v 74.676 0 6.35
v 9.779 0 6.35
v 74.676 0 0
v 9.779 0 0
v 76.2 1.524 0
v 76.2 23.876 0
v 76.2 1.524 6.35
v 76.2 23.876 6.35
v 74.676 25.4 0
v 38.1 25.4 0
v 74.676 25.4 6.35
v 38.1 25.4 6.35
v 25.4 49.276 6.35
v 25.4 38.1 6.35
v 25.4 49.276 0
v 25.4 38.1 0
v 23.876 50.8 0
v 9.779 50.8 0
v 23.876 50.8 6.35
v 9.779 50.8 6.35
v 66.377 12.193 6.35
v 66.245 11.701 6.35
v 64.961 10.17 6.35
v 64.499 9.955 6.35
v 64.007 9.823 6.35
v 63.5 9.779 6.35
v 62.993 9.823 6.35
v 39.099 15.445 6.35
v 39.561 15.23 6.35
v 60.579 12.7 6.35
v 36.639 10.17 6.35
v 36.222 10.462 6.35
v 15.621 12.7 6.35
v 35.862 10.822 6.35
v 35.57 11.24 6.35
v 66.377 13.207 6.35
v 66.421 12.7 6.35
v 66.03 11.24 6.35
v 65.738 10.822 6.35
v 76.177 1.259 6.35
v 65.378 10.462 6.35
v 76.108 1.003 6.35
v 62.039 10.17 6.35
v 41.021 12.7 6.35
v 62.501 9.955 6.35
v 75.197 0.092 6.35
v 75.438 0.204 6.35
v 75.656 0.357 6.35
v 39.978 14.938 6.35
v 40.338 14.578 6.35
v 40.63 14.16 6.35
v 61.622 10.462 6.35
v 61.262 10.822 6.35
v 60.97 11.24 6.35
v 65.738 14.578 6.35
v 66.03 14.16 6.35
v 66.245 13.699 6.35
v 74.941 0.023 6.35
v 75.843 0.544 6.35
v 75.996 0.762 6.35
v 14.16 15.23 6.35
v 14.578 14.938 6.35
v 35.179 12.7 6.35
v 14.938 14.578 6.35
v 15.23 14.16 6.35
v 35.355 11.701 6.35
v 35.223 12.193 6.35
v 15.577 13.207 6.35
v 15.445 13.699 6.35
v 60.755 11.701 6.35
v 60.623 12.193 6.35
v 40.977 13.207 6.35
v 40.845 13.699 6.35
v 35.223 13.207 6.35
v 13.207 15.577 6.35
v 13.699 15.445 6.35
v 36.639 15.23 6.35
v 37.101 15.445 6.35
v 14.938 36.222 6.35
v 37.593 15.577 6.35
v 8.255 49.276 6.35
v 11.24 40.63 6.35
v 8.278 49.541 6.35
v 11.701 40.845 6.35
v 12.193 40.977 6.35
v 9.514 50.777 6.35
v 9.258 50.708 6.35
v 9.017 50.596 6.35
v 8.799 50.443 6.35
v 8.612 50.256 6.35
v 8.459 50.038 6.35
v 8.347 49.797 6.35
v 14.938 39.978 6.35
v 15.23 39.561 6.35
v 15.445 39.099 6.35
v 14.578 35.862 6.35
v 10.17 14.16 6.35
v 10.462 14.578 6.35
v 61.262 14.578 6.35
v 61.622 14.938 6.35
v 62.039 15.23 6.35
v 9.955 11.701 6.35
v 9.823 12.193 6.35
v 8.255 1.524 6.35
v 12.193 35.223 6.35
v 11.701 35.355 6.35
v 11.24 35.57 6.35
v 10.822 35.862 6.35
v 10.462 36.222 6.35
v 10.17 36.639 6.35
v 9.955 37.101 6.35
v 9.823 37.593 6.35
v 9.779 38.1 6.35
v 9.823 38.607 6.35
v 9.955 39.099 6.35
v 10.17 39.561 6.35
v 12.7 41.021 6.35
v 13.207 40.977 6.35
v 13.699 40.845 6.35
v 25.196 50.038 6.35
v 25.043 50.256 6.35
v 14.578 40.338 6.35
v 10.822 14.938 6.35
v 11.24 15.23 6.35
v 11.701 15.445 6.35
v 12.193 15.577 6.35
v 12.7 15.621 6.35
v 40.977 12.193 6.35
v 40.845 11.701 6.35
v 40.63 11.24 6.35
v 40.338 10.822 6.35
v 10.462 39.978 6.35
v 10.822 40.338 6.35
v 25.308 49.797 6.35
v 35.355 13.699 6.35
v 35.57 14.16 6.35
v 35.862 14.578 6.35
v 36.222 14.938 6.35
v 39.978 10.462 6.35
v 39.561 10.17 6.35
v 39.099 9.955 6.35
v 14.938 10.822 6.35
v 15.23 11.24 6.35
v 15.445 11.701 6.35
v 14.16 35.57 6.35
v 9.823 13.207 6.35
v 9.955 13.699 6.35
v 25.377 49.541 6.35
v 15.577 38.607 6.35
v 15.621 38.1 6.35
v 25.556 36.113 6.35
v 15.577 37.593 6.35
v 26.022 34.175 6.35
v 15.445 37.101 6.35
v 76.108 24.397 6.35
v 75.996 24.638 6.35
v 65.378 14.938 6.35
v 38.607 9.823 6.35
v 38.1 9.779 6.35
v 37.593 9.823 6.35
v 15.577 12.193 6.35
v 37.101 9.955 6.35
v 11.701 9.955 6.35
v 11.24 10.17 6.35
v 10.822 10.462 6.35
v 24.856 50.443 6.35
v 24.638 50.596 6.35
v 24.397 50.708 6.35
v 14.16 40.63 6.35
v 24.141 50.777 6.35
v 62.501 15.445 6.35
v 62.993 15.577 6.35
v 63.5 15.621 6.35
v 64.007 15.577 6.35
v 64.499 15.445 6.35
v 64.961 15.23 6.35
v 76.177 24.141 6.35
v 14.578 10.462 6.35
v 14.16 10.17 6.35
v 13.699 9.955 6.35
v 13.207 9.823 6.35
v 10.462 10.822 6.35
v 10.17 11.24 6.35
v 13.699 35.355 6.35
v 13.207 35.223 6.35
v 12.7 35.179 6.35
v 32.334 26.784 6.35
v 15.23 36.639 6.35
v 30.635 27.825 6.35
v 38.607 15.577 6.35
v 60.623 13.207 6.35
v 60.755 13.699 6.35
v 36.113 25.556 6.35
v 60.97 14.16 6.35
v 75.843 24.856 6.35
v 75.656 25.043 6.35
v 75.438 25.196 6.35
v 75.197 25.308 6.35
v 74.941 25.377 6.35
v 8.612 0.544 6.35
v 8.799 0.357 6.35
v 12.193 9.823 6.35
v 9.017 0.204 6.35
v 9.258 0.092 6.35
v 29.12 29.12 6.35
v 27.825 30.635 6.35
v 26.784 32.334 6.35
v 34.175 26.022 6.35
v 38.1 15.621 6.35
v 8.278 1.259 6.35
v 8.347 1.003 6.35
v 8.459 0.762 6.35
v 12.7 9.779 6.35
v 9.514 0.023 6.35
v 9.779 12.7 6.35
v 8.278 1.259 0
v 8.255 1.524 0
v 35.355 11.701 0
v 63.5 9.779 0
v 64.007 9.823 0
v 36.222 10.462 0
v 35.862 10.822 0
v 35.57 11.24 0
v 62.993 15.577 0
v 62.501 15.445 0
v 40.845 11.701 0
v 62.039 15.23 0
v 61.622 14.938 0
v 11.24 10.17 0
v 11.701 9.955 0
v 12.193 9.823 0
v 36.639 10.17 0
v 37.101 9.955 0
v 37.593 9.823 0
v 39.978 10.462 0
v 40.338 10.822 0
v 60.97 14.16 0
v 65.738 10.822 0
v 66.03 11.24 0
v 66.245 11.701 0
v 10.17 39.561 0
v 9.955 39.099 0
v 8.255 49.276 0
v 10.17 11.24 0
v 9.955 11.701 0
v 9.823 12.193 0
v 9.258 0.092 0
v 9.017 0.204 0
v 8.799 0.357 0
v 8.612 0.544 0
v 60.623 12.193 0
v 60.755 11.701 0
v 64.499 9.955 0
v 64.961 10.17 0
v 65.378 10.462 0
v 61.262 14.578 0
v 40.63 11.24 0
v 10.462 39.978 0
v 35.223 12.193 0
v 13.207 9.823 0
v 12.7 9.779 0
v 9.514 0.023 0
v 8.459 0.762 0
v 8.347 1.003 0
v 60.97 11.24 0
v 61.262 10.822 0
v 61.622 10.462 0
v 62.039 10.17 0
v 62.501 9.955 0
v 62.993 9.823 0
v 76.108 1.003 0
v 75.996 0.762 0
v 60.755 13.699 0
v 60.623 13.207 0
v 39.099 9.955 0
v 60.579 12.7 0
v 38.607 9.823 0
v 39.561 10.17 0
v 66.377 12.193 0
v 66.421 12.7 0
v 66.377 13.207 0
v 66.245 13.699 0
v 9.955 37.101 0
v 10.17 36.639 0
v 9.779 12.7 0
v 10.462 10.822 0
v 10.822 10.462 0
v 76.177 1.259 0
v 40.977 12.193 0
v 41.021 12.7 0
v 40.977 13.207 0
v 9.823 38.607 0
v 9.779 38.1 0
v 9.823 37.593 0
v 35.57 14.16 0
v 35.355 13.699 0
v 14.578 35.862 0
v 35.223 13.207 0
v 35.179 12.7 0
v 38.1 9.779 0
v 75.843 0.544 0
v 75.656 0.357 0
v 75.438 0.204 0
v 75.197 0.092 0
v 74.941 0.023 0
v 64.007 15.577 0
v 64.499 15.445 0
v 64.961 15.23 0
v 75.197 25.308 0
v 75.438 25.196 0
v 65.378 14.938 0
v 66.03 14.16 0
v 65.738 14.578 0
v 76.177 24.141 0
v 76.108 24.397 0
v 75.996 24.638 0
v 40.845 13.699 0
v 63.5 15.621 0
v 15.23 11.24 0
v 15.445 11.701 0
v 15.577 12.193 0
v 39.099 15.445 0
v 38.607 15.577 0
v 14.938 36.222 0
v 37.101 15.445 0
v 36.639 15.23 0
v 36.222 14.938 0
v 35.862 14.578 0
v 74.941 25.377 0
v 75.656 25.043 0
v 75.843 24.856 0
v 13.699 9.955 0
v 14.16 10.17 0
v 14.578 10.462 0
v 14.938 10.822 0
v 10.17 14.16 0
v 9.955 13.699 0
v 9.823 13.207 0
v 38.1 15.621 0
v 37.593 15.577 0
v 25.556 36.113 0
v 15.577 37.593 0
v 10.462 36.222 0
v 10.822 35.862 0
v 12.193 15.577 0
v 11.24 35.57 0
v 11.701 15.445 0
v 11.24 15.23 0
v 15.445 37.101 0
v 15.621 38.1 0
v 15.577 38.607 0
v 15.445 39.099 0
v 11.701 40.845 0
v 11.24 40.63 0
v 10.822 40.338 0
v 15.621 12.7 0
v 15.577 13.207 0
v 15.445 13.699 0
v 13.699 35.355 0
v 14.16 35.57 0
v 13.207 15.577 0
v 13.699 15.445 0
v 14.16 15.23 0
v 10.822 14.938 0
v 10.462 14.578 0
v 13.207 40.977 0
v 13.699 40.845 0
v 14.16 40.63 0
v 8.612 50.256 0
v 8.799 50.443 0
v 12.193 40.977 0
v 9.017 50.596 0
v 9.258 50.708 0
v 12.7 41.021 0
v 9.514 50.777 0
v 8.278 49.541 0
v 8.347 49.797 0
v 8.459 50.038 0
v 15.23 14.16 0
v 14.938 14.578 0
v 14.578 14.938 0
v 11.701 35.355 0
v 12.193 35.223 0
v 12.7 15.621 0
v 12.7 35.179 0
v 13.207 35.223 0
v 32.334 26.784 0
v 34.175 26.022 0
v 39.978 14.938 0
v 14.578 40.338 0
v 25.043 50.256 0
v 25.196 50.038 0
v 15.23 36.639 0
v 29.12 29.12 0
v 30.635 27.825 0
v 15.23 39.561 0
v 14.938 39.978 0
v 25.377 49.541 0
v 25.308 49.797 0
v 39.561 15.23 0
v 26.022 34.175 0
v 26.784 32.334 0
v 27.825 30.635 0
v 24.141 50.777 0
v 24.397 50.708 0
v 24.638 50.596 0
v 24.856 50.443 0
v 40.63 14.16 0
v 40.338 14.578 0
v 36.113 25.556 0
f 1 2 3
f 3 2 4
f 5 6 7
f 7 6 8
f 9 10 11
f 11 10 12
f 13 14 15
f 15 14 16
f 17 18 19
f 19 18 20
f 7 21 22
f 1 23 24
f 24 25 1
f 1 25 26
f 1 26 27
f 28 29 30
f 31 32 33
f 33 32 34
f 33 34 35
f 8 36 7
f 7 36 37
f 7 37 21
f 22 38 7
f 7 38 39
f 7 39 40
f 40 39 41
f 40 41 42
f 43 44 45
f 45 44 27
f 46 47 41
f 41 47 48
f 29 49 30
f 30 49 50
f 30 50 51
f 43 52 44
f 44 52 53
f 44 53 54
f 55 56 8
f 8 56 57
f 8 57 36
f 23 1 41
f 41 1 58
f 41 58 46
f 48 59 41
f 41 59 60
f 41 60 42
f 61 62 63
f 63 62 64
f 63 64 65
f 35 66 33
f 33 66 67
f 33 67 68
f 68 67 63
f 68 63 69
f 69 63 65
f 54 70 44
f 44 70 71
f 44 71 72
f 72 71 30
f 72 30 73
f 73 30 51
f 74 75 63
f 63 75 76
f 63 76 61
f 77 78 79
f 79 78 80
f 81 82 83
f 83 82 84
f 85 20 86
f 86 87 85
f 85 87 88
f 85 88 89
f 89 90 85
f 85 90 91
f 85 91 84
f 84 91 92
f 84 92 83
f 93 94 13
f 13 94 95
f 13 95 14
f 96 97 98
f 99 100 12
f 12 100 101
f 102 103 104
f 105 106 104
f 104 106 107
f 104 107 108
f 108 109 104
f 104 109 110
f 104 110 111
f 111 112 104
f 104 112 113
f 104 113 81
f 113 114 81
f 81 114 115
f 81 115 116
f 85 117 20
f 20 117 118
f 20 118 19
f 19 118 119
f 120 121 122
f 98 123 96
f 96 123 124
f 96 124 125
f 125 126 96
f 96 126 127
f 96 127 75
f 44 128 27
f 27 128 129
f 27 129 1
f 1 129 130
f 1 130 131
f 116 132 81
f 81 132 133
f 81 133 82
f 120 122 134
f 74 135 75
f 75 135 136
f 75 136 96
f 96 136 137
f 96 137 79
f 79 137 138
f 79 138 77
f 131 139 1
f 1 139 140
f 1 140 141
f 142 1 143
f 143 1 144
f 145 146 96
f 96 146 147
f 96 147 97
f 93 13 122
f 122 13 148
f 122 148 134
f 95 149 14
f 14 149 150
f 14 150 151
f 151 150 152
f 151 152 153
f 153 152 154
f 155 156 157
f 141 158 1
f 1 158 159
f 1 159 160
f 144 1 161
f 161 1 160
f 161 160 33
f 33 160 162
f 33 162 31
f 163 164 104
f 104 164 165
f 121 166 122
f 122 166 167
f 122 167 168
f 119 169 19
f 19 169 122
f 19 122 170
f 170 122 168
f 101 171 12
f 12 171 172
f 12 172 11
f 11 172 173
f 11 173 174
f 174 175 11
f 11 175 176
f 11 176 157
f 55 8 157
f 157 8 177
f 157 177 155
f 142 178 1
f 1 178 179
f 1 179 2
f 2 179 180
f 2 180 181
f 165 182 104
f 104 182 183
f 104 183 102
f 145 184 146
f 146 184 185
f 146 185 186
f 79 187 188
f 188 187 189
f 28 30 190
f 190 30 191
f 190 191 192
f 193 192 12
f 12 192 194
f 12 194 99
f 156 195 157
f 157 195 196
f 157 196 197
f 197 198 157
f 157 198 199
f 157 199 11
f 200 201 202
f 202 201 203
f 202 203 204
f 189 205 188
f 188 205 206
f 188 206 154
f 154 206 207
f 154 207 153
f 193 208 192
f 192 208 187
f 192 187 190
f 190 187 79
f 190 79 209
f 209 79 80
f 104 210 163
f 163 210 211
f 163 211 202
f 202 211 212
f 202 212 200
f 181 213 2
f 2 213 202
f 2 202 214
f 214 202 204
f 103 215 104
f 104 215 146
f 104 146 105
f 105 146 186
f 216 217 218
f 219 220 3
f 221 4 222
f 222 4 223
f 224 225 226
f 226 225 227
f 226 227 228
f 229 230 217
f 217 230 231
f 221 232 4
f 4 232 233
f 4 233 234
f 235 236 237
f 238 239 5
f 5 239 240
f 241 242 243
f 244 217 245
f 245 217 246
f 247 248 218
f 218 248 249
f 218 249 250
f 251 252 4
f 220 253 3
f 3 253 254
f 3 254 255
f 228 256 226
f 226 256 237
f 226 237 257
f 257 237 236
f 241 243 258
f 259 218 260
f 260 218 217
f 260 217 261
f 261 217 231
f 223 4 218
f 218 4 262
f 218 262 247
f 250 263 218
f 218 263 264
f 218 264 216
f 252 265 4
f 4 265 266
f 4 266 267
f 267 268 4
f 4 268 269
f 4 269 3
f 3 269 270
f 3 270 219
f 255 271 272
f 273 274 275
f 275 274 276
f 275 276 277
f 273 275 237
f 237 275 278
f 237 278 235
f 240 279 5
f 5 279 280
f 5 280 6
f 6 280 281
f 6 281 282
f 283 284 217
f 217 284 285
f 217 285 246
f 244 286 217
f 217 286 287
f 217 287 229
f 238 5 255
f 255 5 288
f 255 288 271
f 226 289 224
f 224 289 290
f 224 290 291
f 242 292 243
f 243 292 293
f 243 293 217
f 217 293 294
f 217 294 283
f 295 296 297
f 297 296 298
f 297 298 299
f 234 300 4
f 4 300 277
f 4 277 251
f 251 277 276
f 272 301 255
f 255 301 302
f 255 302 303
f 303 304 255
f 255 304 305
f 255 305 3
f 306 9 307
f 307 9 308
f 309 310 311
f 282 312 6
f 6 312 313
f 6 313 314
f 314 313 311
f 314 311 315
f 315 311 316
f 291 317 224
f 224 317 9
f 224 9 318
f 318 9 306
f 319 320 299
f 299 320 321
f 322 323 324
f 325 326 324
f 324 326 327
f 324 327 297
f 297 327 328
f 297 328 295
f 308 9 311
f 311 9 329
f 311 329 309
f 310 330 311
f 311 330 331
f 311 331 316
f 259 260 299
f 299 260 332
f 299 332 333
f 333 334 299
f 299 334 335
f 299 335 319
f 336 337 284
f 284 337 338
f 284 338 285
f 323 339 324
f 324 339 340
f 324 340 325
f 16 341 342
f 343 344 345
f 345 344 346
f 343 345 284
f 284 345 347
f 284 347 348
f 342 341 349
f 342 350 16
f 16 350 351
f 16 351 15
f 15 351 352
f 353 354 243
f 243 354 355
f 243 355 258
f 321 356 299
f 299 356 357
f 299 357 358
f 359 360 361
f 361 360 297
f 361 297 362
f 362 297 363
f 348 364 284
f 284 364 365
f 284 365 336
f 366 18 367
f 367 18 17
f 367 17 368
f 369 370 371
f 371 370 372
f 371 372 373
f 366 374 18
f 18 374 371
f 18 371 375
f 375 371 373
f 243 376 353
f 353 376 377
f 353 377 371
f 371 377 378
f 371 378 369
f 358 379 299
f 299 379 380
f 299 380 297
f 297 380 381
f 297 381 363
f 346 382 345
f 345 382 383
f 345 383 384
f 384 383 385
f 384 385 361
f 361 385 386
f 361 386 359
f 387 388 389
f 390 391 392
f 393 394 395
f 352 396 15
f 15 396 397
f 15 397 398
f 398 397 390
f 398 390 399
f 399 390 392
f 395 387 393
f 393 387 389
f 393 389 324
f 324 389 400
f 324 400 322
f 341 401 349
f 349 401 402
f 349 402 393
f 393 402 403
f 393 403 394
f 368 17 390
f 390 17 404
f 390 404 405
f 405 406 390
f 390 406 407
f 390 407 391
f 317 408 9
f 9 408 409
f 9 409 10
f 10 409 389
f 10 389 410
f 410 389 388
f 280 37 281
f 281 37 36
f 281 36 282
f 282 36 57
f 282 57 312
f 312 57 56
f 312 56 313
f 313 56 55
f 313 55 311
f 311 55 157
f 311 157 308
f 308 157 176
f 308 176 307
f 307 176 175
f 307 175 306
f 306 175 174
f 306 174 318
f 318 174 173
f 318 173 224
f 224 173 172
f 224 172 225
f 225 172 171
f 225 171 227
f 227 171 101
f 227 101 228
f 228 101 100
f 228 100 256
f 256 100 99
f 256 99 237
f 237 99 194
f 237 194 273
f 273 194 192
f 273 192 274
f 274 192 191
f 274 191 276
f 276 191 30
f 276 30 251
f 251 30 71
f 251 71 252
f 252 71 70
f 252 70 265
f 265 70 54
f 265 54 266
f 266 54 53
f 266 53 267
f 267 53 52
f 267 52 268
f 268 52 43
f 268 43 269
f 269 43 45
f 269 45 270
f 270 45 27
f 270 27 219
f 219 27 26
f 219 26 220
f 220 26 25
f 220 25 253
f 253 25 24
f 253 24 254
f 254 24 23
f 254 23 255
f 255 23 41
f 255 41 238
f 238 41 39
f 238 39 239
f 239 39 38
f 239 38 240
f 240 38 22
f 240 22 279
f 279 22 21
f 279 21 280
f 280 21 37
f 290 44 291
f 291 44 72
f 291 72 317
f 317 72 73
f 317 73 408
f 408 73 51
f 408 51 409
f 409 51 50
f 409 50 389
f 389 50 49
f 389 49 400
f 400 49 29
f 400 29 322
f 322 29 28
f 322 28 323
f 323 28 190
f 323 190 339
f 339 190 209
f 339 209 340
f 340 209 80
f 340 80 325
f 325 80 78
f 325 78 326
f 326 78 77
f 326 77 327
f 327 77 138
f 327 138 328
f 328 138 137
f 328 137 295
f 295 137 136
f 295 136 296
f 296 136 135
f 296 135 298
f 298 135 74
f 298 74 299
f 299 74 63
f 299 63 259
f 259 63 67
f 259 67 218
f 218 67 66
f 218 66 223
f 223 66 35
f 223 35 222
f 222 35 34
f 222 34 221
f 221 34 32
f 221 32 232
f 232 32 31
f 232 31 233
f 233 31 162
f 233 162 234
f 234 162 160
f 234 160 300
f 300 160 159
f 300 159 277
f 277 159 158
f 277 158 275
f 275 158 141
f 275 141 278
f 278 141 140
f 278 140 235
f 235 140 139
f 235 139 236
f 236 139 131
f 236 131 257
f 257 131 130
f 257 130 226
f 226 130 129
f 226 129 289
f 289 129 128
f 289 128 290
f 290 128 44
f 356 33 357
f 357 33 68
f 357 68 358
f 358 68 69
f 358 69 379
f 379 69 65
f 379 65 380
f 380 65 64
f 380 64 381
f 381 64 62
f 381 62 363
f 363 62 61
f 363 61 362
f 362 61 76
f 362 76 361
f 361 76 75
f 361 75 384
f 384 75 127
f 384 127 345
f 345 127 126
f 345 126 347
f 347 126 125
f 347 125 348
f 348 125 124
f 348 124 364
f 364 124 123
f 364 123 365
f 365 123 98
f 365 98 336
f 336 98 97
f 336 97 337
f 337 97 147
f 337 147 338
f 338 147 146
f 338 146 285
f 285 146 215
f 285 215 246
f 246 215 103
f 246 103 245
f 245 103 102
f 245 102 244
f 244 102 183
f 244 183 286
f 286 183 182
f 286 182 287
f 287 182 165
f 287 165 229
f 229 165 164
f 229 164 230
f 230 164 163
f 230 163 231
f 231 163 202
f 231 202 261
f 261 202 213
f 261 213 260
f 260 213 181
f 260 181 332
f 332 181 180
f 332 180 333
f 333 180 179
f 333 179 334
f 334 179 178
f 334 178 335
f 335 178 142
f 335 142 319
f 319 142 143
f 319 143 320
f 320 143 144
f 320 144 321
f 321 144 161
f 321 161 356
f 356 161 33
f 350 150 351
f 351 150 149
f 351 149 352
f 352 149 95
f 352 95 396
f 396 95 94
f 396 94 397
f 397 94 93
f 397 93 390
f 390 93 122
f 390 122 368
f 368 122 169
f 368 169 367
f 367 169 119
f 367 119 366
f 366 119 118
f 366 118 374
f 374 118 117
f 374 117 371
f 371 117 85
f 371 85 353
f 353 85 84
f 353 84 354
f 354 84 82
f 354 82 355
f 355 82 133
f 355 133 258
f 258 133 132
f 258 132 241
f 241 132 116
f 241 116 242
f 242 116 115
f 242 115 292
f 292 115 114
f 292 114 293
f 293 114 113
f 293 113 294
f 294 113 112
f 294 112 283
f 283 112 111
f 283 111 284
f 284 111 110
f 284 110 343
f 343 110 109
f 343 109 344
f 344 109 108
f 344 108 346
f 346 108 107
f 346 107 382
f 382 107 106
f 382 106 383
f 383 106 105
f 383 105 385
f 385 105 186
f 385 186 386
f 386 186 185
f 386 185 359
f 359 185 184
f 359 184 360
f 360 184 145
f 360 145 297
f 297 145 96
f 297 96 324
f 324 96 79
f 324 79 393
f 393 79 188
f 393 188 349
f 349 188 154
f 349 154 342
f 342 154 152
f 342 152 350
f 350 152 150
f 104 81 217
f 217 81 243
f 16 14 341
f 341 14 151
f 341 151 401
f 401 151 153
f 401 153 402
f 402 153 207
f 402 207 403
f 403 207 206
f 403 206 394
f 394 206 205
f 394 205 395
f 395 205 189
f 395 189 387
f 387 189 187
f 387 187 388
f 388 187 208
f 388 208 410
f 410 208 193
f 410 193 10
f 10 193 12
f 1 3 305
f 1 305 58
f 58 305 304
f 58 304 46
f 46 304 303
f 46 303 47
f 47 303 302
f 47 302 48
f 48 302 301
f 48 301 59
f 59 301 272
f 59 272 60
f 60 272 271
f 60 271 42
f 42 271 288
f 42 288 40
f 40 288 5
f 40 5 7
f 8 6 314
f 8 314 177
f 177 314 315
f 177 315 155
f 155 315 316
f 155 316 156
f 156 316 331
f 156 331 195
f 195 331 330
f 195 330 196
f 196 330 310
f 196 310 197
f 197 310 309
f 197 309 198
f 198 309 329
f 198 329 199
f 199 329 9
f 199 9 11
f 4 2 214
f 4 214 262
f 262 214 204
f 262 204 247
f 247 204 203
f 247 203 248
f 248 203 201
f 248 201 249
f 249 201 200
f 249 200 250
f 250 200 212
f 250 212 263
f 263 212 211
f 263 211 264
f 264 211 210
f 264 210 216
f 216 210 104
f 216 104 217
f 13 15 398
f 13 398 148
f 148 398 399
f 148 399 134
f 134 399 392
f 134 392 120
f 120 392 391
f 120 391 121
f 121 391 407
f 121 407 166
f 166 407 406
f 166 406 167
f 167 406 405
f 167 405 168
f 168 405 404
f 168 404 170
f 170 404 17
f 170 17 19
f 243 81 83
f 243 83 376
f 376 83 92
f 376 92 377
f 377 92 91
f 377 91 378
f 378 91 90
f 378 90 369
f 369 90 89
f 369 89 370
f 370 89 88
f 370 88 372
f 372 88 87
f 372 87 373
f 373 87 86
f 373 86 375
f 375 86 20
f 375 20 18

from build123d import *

# Parameters (mm, degrees)
BOSS_EXTRUDE1_DEPTH = 6.35
SKETCH2_R           = 2.921
CUT_EXTRUDE1_DEPTH  = 92.800885072
SKETCH3_W           = 8.255
SKETCH3_H           = 50.8
CUT_EXTRUDE2_DEPTH  = 92.800885072
FILLET1_R           = 12.7
FILLET2_R           = 1.524


with BuildPart() as part:
    # Sketch1 → Boss-Extrude1 (new body)
    with BuildSketch(Plane.XY):
        Polygon((0, 0), (0, 50.8), (25.4, 50.8), (25.4, 25.4), (76.2, 25.4), (76.2, 0), align=None)
    extrude(amount=BOSS_EXTRUDE1_DEPTH)

    # Sketch2 → Cut-Extrude1 (cut, through all)
    with BuildSketch(Plane.XY.offset(6.35)):
        with Locations((12.7, 38.1)):
            Circle(SKETCH2_R)
        with Locations((12.7, 12.7)):
            Circle(SKETCH2_R)
        with Locations((38.1, 12.7)):
            Circle(SKETCH2_R)
        with Locations((63.5, 12.7)):
            Circle(SKETCH2_R)
    extrude(amount=-CUT_EXTRUDE1_DEPTH, mode=Mode.SUBTRACT)

    # Sketch3 → Cut-Extrude2 (cut, through all)
    with BuildSketch(Plane.XY.offset(6.35)):
        with Locations((4.1275, 25.4)):
            Rectangle(SKETCH3_W, SKETCH3_H)
    extrude(amount=-CUT_EXTRUDE2_DEPTH, mode=Mode.SUBTRACT)

    # Fillet1
    fillet1_edges = [part.edges().sort_by_distance(p)[0] for p in [
        (25.4, 25.4, 3.175),
    ]]
    fillet(fillet1_edges, radius=FILLET1_R)

    # Fillet2
    fillet2_edges = [part.edges().sort_by_distance(p)[0] for p in [
        (25.4, 50.8, 3.175),
        (76.2, 25.4, 3.175),
        (76.2, 0, 3.175),
        (8.255, 50.8, 3.175),
        (8.255, 0, 3.175),
    ]]
    fillet(fillet2_edges, radius=FILLET2_R)


solid = part.part
